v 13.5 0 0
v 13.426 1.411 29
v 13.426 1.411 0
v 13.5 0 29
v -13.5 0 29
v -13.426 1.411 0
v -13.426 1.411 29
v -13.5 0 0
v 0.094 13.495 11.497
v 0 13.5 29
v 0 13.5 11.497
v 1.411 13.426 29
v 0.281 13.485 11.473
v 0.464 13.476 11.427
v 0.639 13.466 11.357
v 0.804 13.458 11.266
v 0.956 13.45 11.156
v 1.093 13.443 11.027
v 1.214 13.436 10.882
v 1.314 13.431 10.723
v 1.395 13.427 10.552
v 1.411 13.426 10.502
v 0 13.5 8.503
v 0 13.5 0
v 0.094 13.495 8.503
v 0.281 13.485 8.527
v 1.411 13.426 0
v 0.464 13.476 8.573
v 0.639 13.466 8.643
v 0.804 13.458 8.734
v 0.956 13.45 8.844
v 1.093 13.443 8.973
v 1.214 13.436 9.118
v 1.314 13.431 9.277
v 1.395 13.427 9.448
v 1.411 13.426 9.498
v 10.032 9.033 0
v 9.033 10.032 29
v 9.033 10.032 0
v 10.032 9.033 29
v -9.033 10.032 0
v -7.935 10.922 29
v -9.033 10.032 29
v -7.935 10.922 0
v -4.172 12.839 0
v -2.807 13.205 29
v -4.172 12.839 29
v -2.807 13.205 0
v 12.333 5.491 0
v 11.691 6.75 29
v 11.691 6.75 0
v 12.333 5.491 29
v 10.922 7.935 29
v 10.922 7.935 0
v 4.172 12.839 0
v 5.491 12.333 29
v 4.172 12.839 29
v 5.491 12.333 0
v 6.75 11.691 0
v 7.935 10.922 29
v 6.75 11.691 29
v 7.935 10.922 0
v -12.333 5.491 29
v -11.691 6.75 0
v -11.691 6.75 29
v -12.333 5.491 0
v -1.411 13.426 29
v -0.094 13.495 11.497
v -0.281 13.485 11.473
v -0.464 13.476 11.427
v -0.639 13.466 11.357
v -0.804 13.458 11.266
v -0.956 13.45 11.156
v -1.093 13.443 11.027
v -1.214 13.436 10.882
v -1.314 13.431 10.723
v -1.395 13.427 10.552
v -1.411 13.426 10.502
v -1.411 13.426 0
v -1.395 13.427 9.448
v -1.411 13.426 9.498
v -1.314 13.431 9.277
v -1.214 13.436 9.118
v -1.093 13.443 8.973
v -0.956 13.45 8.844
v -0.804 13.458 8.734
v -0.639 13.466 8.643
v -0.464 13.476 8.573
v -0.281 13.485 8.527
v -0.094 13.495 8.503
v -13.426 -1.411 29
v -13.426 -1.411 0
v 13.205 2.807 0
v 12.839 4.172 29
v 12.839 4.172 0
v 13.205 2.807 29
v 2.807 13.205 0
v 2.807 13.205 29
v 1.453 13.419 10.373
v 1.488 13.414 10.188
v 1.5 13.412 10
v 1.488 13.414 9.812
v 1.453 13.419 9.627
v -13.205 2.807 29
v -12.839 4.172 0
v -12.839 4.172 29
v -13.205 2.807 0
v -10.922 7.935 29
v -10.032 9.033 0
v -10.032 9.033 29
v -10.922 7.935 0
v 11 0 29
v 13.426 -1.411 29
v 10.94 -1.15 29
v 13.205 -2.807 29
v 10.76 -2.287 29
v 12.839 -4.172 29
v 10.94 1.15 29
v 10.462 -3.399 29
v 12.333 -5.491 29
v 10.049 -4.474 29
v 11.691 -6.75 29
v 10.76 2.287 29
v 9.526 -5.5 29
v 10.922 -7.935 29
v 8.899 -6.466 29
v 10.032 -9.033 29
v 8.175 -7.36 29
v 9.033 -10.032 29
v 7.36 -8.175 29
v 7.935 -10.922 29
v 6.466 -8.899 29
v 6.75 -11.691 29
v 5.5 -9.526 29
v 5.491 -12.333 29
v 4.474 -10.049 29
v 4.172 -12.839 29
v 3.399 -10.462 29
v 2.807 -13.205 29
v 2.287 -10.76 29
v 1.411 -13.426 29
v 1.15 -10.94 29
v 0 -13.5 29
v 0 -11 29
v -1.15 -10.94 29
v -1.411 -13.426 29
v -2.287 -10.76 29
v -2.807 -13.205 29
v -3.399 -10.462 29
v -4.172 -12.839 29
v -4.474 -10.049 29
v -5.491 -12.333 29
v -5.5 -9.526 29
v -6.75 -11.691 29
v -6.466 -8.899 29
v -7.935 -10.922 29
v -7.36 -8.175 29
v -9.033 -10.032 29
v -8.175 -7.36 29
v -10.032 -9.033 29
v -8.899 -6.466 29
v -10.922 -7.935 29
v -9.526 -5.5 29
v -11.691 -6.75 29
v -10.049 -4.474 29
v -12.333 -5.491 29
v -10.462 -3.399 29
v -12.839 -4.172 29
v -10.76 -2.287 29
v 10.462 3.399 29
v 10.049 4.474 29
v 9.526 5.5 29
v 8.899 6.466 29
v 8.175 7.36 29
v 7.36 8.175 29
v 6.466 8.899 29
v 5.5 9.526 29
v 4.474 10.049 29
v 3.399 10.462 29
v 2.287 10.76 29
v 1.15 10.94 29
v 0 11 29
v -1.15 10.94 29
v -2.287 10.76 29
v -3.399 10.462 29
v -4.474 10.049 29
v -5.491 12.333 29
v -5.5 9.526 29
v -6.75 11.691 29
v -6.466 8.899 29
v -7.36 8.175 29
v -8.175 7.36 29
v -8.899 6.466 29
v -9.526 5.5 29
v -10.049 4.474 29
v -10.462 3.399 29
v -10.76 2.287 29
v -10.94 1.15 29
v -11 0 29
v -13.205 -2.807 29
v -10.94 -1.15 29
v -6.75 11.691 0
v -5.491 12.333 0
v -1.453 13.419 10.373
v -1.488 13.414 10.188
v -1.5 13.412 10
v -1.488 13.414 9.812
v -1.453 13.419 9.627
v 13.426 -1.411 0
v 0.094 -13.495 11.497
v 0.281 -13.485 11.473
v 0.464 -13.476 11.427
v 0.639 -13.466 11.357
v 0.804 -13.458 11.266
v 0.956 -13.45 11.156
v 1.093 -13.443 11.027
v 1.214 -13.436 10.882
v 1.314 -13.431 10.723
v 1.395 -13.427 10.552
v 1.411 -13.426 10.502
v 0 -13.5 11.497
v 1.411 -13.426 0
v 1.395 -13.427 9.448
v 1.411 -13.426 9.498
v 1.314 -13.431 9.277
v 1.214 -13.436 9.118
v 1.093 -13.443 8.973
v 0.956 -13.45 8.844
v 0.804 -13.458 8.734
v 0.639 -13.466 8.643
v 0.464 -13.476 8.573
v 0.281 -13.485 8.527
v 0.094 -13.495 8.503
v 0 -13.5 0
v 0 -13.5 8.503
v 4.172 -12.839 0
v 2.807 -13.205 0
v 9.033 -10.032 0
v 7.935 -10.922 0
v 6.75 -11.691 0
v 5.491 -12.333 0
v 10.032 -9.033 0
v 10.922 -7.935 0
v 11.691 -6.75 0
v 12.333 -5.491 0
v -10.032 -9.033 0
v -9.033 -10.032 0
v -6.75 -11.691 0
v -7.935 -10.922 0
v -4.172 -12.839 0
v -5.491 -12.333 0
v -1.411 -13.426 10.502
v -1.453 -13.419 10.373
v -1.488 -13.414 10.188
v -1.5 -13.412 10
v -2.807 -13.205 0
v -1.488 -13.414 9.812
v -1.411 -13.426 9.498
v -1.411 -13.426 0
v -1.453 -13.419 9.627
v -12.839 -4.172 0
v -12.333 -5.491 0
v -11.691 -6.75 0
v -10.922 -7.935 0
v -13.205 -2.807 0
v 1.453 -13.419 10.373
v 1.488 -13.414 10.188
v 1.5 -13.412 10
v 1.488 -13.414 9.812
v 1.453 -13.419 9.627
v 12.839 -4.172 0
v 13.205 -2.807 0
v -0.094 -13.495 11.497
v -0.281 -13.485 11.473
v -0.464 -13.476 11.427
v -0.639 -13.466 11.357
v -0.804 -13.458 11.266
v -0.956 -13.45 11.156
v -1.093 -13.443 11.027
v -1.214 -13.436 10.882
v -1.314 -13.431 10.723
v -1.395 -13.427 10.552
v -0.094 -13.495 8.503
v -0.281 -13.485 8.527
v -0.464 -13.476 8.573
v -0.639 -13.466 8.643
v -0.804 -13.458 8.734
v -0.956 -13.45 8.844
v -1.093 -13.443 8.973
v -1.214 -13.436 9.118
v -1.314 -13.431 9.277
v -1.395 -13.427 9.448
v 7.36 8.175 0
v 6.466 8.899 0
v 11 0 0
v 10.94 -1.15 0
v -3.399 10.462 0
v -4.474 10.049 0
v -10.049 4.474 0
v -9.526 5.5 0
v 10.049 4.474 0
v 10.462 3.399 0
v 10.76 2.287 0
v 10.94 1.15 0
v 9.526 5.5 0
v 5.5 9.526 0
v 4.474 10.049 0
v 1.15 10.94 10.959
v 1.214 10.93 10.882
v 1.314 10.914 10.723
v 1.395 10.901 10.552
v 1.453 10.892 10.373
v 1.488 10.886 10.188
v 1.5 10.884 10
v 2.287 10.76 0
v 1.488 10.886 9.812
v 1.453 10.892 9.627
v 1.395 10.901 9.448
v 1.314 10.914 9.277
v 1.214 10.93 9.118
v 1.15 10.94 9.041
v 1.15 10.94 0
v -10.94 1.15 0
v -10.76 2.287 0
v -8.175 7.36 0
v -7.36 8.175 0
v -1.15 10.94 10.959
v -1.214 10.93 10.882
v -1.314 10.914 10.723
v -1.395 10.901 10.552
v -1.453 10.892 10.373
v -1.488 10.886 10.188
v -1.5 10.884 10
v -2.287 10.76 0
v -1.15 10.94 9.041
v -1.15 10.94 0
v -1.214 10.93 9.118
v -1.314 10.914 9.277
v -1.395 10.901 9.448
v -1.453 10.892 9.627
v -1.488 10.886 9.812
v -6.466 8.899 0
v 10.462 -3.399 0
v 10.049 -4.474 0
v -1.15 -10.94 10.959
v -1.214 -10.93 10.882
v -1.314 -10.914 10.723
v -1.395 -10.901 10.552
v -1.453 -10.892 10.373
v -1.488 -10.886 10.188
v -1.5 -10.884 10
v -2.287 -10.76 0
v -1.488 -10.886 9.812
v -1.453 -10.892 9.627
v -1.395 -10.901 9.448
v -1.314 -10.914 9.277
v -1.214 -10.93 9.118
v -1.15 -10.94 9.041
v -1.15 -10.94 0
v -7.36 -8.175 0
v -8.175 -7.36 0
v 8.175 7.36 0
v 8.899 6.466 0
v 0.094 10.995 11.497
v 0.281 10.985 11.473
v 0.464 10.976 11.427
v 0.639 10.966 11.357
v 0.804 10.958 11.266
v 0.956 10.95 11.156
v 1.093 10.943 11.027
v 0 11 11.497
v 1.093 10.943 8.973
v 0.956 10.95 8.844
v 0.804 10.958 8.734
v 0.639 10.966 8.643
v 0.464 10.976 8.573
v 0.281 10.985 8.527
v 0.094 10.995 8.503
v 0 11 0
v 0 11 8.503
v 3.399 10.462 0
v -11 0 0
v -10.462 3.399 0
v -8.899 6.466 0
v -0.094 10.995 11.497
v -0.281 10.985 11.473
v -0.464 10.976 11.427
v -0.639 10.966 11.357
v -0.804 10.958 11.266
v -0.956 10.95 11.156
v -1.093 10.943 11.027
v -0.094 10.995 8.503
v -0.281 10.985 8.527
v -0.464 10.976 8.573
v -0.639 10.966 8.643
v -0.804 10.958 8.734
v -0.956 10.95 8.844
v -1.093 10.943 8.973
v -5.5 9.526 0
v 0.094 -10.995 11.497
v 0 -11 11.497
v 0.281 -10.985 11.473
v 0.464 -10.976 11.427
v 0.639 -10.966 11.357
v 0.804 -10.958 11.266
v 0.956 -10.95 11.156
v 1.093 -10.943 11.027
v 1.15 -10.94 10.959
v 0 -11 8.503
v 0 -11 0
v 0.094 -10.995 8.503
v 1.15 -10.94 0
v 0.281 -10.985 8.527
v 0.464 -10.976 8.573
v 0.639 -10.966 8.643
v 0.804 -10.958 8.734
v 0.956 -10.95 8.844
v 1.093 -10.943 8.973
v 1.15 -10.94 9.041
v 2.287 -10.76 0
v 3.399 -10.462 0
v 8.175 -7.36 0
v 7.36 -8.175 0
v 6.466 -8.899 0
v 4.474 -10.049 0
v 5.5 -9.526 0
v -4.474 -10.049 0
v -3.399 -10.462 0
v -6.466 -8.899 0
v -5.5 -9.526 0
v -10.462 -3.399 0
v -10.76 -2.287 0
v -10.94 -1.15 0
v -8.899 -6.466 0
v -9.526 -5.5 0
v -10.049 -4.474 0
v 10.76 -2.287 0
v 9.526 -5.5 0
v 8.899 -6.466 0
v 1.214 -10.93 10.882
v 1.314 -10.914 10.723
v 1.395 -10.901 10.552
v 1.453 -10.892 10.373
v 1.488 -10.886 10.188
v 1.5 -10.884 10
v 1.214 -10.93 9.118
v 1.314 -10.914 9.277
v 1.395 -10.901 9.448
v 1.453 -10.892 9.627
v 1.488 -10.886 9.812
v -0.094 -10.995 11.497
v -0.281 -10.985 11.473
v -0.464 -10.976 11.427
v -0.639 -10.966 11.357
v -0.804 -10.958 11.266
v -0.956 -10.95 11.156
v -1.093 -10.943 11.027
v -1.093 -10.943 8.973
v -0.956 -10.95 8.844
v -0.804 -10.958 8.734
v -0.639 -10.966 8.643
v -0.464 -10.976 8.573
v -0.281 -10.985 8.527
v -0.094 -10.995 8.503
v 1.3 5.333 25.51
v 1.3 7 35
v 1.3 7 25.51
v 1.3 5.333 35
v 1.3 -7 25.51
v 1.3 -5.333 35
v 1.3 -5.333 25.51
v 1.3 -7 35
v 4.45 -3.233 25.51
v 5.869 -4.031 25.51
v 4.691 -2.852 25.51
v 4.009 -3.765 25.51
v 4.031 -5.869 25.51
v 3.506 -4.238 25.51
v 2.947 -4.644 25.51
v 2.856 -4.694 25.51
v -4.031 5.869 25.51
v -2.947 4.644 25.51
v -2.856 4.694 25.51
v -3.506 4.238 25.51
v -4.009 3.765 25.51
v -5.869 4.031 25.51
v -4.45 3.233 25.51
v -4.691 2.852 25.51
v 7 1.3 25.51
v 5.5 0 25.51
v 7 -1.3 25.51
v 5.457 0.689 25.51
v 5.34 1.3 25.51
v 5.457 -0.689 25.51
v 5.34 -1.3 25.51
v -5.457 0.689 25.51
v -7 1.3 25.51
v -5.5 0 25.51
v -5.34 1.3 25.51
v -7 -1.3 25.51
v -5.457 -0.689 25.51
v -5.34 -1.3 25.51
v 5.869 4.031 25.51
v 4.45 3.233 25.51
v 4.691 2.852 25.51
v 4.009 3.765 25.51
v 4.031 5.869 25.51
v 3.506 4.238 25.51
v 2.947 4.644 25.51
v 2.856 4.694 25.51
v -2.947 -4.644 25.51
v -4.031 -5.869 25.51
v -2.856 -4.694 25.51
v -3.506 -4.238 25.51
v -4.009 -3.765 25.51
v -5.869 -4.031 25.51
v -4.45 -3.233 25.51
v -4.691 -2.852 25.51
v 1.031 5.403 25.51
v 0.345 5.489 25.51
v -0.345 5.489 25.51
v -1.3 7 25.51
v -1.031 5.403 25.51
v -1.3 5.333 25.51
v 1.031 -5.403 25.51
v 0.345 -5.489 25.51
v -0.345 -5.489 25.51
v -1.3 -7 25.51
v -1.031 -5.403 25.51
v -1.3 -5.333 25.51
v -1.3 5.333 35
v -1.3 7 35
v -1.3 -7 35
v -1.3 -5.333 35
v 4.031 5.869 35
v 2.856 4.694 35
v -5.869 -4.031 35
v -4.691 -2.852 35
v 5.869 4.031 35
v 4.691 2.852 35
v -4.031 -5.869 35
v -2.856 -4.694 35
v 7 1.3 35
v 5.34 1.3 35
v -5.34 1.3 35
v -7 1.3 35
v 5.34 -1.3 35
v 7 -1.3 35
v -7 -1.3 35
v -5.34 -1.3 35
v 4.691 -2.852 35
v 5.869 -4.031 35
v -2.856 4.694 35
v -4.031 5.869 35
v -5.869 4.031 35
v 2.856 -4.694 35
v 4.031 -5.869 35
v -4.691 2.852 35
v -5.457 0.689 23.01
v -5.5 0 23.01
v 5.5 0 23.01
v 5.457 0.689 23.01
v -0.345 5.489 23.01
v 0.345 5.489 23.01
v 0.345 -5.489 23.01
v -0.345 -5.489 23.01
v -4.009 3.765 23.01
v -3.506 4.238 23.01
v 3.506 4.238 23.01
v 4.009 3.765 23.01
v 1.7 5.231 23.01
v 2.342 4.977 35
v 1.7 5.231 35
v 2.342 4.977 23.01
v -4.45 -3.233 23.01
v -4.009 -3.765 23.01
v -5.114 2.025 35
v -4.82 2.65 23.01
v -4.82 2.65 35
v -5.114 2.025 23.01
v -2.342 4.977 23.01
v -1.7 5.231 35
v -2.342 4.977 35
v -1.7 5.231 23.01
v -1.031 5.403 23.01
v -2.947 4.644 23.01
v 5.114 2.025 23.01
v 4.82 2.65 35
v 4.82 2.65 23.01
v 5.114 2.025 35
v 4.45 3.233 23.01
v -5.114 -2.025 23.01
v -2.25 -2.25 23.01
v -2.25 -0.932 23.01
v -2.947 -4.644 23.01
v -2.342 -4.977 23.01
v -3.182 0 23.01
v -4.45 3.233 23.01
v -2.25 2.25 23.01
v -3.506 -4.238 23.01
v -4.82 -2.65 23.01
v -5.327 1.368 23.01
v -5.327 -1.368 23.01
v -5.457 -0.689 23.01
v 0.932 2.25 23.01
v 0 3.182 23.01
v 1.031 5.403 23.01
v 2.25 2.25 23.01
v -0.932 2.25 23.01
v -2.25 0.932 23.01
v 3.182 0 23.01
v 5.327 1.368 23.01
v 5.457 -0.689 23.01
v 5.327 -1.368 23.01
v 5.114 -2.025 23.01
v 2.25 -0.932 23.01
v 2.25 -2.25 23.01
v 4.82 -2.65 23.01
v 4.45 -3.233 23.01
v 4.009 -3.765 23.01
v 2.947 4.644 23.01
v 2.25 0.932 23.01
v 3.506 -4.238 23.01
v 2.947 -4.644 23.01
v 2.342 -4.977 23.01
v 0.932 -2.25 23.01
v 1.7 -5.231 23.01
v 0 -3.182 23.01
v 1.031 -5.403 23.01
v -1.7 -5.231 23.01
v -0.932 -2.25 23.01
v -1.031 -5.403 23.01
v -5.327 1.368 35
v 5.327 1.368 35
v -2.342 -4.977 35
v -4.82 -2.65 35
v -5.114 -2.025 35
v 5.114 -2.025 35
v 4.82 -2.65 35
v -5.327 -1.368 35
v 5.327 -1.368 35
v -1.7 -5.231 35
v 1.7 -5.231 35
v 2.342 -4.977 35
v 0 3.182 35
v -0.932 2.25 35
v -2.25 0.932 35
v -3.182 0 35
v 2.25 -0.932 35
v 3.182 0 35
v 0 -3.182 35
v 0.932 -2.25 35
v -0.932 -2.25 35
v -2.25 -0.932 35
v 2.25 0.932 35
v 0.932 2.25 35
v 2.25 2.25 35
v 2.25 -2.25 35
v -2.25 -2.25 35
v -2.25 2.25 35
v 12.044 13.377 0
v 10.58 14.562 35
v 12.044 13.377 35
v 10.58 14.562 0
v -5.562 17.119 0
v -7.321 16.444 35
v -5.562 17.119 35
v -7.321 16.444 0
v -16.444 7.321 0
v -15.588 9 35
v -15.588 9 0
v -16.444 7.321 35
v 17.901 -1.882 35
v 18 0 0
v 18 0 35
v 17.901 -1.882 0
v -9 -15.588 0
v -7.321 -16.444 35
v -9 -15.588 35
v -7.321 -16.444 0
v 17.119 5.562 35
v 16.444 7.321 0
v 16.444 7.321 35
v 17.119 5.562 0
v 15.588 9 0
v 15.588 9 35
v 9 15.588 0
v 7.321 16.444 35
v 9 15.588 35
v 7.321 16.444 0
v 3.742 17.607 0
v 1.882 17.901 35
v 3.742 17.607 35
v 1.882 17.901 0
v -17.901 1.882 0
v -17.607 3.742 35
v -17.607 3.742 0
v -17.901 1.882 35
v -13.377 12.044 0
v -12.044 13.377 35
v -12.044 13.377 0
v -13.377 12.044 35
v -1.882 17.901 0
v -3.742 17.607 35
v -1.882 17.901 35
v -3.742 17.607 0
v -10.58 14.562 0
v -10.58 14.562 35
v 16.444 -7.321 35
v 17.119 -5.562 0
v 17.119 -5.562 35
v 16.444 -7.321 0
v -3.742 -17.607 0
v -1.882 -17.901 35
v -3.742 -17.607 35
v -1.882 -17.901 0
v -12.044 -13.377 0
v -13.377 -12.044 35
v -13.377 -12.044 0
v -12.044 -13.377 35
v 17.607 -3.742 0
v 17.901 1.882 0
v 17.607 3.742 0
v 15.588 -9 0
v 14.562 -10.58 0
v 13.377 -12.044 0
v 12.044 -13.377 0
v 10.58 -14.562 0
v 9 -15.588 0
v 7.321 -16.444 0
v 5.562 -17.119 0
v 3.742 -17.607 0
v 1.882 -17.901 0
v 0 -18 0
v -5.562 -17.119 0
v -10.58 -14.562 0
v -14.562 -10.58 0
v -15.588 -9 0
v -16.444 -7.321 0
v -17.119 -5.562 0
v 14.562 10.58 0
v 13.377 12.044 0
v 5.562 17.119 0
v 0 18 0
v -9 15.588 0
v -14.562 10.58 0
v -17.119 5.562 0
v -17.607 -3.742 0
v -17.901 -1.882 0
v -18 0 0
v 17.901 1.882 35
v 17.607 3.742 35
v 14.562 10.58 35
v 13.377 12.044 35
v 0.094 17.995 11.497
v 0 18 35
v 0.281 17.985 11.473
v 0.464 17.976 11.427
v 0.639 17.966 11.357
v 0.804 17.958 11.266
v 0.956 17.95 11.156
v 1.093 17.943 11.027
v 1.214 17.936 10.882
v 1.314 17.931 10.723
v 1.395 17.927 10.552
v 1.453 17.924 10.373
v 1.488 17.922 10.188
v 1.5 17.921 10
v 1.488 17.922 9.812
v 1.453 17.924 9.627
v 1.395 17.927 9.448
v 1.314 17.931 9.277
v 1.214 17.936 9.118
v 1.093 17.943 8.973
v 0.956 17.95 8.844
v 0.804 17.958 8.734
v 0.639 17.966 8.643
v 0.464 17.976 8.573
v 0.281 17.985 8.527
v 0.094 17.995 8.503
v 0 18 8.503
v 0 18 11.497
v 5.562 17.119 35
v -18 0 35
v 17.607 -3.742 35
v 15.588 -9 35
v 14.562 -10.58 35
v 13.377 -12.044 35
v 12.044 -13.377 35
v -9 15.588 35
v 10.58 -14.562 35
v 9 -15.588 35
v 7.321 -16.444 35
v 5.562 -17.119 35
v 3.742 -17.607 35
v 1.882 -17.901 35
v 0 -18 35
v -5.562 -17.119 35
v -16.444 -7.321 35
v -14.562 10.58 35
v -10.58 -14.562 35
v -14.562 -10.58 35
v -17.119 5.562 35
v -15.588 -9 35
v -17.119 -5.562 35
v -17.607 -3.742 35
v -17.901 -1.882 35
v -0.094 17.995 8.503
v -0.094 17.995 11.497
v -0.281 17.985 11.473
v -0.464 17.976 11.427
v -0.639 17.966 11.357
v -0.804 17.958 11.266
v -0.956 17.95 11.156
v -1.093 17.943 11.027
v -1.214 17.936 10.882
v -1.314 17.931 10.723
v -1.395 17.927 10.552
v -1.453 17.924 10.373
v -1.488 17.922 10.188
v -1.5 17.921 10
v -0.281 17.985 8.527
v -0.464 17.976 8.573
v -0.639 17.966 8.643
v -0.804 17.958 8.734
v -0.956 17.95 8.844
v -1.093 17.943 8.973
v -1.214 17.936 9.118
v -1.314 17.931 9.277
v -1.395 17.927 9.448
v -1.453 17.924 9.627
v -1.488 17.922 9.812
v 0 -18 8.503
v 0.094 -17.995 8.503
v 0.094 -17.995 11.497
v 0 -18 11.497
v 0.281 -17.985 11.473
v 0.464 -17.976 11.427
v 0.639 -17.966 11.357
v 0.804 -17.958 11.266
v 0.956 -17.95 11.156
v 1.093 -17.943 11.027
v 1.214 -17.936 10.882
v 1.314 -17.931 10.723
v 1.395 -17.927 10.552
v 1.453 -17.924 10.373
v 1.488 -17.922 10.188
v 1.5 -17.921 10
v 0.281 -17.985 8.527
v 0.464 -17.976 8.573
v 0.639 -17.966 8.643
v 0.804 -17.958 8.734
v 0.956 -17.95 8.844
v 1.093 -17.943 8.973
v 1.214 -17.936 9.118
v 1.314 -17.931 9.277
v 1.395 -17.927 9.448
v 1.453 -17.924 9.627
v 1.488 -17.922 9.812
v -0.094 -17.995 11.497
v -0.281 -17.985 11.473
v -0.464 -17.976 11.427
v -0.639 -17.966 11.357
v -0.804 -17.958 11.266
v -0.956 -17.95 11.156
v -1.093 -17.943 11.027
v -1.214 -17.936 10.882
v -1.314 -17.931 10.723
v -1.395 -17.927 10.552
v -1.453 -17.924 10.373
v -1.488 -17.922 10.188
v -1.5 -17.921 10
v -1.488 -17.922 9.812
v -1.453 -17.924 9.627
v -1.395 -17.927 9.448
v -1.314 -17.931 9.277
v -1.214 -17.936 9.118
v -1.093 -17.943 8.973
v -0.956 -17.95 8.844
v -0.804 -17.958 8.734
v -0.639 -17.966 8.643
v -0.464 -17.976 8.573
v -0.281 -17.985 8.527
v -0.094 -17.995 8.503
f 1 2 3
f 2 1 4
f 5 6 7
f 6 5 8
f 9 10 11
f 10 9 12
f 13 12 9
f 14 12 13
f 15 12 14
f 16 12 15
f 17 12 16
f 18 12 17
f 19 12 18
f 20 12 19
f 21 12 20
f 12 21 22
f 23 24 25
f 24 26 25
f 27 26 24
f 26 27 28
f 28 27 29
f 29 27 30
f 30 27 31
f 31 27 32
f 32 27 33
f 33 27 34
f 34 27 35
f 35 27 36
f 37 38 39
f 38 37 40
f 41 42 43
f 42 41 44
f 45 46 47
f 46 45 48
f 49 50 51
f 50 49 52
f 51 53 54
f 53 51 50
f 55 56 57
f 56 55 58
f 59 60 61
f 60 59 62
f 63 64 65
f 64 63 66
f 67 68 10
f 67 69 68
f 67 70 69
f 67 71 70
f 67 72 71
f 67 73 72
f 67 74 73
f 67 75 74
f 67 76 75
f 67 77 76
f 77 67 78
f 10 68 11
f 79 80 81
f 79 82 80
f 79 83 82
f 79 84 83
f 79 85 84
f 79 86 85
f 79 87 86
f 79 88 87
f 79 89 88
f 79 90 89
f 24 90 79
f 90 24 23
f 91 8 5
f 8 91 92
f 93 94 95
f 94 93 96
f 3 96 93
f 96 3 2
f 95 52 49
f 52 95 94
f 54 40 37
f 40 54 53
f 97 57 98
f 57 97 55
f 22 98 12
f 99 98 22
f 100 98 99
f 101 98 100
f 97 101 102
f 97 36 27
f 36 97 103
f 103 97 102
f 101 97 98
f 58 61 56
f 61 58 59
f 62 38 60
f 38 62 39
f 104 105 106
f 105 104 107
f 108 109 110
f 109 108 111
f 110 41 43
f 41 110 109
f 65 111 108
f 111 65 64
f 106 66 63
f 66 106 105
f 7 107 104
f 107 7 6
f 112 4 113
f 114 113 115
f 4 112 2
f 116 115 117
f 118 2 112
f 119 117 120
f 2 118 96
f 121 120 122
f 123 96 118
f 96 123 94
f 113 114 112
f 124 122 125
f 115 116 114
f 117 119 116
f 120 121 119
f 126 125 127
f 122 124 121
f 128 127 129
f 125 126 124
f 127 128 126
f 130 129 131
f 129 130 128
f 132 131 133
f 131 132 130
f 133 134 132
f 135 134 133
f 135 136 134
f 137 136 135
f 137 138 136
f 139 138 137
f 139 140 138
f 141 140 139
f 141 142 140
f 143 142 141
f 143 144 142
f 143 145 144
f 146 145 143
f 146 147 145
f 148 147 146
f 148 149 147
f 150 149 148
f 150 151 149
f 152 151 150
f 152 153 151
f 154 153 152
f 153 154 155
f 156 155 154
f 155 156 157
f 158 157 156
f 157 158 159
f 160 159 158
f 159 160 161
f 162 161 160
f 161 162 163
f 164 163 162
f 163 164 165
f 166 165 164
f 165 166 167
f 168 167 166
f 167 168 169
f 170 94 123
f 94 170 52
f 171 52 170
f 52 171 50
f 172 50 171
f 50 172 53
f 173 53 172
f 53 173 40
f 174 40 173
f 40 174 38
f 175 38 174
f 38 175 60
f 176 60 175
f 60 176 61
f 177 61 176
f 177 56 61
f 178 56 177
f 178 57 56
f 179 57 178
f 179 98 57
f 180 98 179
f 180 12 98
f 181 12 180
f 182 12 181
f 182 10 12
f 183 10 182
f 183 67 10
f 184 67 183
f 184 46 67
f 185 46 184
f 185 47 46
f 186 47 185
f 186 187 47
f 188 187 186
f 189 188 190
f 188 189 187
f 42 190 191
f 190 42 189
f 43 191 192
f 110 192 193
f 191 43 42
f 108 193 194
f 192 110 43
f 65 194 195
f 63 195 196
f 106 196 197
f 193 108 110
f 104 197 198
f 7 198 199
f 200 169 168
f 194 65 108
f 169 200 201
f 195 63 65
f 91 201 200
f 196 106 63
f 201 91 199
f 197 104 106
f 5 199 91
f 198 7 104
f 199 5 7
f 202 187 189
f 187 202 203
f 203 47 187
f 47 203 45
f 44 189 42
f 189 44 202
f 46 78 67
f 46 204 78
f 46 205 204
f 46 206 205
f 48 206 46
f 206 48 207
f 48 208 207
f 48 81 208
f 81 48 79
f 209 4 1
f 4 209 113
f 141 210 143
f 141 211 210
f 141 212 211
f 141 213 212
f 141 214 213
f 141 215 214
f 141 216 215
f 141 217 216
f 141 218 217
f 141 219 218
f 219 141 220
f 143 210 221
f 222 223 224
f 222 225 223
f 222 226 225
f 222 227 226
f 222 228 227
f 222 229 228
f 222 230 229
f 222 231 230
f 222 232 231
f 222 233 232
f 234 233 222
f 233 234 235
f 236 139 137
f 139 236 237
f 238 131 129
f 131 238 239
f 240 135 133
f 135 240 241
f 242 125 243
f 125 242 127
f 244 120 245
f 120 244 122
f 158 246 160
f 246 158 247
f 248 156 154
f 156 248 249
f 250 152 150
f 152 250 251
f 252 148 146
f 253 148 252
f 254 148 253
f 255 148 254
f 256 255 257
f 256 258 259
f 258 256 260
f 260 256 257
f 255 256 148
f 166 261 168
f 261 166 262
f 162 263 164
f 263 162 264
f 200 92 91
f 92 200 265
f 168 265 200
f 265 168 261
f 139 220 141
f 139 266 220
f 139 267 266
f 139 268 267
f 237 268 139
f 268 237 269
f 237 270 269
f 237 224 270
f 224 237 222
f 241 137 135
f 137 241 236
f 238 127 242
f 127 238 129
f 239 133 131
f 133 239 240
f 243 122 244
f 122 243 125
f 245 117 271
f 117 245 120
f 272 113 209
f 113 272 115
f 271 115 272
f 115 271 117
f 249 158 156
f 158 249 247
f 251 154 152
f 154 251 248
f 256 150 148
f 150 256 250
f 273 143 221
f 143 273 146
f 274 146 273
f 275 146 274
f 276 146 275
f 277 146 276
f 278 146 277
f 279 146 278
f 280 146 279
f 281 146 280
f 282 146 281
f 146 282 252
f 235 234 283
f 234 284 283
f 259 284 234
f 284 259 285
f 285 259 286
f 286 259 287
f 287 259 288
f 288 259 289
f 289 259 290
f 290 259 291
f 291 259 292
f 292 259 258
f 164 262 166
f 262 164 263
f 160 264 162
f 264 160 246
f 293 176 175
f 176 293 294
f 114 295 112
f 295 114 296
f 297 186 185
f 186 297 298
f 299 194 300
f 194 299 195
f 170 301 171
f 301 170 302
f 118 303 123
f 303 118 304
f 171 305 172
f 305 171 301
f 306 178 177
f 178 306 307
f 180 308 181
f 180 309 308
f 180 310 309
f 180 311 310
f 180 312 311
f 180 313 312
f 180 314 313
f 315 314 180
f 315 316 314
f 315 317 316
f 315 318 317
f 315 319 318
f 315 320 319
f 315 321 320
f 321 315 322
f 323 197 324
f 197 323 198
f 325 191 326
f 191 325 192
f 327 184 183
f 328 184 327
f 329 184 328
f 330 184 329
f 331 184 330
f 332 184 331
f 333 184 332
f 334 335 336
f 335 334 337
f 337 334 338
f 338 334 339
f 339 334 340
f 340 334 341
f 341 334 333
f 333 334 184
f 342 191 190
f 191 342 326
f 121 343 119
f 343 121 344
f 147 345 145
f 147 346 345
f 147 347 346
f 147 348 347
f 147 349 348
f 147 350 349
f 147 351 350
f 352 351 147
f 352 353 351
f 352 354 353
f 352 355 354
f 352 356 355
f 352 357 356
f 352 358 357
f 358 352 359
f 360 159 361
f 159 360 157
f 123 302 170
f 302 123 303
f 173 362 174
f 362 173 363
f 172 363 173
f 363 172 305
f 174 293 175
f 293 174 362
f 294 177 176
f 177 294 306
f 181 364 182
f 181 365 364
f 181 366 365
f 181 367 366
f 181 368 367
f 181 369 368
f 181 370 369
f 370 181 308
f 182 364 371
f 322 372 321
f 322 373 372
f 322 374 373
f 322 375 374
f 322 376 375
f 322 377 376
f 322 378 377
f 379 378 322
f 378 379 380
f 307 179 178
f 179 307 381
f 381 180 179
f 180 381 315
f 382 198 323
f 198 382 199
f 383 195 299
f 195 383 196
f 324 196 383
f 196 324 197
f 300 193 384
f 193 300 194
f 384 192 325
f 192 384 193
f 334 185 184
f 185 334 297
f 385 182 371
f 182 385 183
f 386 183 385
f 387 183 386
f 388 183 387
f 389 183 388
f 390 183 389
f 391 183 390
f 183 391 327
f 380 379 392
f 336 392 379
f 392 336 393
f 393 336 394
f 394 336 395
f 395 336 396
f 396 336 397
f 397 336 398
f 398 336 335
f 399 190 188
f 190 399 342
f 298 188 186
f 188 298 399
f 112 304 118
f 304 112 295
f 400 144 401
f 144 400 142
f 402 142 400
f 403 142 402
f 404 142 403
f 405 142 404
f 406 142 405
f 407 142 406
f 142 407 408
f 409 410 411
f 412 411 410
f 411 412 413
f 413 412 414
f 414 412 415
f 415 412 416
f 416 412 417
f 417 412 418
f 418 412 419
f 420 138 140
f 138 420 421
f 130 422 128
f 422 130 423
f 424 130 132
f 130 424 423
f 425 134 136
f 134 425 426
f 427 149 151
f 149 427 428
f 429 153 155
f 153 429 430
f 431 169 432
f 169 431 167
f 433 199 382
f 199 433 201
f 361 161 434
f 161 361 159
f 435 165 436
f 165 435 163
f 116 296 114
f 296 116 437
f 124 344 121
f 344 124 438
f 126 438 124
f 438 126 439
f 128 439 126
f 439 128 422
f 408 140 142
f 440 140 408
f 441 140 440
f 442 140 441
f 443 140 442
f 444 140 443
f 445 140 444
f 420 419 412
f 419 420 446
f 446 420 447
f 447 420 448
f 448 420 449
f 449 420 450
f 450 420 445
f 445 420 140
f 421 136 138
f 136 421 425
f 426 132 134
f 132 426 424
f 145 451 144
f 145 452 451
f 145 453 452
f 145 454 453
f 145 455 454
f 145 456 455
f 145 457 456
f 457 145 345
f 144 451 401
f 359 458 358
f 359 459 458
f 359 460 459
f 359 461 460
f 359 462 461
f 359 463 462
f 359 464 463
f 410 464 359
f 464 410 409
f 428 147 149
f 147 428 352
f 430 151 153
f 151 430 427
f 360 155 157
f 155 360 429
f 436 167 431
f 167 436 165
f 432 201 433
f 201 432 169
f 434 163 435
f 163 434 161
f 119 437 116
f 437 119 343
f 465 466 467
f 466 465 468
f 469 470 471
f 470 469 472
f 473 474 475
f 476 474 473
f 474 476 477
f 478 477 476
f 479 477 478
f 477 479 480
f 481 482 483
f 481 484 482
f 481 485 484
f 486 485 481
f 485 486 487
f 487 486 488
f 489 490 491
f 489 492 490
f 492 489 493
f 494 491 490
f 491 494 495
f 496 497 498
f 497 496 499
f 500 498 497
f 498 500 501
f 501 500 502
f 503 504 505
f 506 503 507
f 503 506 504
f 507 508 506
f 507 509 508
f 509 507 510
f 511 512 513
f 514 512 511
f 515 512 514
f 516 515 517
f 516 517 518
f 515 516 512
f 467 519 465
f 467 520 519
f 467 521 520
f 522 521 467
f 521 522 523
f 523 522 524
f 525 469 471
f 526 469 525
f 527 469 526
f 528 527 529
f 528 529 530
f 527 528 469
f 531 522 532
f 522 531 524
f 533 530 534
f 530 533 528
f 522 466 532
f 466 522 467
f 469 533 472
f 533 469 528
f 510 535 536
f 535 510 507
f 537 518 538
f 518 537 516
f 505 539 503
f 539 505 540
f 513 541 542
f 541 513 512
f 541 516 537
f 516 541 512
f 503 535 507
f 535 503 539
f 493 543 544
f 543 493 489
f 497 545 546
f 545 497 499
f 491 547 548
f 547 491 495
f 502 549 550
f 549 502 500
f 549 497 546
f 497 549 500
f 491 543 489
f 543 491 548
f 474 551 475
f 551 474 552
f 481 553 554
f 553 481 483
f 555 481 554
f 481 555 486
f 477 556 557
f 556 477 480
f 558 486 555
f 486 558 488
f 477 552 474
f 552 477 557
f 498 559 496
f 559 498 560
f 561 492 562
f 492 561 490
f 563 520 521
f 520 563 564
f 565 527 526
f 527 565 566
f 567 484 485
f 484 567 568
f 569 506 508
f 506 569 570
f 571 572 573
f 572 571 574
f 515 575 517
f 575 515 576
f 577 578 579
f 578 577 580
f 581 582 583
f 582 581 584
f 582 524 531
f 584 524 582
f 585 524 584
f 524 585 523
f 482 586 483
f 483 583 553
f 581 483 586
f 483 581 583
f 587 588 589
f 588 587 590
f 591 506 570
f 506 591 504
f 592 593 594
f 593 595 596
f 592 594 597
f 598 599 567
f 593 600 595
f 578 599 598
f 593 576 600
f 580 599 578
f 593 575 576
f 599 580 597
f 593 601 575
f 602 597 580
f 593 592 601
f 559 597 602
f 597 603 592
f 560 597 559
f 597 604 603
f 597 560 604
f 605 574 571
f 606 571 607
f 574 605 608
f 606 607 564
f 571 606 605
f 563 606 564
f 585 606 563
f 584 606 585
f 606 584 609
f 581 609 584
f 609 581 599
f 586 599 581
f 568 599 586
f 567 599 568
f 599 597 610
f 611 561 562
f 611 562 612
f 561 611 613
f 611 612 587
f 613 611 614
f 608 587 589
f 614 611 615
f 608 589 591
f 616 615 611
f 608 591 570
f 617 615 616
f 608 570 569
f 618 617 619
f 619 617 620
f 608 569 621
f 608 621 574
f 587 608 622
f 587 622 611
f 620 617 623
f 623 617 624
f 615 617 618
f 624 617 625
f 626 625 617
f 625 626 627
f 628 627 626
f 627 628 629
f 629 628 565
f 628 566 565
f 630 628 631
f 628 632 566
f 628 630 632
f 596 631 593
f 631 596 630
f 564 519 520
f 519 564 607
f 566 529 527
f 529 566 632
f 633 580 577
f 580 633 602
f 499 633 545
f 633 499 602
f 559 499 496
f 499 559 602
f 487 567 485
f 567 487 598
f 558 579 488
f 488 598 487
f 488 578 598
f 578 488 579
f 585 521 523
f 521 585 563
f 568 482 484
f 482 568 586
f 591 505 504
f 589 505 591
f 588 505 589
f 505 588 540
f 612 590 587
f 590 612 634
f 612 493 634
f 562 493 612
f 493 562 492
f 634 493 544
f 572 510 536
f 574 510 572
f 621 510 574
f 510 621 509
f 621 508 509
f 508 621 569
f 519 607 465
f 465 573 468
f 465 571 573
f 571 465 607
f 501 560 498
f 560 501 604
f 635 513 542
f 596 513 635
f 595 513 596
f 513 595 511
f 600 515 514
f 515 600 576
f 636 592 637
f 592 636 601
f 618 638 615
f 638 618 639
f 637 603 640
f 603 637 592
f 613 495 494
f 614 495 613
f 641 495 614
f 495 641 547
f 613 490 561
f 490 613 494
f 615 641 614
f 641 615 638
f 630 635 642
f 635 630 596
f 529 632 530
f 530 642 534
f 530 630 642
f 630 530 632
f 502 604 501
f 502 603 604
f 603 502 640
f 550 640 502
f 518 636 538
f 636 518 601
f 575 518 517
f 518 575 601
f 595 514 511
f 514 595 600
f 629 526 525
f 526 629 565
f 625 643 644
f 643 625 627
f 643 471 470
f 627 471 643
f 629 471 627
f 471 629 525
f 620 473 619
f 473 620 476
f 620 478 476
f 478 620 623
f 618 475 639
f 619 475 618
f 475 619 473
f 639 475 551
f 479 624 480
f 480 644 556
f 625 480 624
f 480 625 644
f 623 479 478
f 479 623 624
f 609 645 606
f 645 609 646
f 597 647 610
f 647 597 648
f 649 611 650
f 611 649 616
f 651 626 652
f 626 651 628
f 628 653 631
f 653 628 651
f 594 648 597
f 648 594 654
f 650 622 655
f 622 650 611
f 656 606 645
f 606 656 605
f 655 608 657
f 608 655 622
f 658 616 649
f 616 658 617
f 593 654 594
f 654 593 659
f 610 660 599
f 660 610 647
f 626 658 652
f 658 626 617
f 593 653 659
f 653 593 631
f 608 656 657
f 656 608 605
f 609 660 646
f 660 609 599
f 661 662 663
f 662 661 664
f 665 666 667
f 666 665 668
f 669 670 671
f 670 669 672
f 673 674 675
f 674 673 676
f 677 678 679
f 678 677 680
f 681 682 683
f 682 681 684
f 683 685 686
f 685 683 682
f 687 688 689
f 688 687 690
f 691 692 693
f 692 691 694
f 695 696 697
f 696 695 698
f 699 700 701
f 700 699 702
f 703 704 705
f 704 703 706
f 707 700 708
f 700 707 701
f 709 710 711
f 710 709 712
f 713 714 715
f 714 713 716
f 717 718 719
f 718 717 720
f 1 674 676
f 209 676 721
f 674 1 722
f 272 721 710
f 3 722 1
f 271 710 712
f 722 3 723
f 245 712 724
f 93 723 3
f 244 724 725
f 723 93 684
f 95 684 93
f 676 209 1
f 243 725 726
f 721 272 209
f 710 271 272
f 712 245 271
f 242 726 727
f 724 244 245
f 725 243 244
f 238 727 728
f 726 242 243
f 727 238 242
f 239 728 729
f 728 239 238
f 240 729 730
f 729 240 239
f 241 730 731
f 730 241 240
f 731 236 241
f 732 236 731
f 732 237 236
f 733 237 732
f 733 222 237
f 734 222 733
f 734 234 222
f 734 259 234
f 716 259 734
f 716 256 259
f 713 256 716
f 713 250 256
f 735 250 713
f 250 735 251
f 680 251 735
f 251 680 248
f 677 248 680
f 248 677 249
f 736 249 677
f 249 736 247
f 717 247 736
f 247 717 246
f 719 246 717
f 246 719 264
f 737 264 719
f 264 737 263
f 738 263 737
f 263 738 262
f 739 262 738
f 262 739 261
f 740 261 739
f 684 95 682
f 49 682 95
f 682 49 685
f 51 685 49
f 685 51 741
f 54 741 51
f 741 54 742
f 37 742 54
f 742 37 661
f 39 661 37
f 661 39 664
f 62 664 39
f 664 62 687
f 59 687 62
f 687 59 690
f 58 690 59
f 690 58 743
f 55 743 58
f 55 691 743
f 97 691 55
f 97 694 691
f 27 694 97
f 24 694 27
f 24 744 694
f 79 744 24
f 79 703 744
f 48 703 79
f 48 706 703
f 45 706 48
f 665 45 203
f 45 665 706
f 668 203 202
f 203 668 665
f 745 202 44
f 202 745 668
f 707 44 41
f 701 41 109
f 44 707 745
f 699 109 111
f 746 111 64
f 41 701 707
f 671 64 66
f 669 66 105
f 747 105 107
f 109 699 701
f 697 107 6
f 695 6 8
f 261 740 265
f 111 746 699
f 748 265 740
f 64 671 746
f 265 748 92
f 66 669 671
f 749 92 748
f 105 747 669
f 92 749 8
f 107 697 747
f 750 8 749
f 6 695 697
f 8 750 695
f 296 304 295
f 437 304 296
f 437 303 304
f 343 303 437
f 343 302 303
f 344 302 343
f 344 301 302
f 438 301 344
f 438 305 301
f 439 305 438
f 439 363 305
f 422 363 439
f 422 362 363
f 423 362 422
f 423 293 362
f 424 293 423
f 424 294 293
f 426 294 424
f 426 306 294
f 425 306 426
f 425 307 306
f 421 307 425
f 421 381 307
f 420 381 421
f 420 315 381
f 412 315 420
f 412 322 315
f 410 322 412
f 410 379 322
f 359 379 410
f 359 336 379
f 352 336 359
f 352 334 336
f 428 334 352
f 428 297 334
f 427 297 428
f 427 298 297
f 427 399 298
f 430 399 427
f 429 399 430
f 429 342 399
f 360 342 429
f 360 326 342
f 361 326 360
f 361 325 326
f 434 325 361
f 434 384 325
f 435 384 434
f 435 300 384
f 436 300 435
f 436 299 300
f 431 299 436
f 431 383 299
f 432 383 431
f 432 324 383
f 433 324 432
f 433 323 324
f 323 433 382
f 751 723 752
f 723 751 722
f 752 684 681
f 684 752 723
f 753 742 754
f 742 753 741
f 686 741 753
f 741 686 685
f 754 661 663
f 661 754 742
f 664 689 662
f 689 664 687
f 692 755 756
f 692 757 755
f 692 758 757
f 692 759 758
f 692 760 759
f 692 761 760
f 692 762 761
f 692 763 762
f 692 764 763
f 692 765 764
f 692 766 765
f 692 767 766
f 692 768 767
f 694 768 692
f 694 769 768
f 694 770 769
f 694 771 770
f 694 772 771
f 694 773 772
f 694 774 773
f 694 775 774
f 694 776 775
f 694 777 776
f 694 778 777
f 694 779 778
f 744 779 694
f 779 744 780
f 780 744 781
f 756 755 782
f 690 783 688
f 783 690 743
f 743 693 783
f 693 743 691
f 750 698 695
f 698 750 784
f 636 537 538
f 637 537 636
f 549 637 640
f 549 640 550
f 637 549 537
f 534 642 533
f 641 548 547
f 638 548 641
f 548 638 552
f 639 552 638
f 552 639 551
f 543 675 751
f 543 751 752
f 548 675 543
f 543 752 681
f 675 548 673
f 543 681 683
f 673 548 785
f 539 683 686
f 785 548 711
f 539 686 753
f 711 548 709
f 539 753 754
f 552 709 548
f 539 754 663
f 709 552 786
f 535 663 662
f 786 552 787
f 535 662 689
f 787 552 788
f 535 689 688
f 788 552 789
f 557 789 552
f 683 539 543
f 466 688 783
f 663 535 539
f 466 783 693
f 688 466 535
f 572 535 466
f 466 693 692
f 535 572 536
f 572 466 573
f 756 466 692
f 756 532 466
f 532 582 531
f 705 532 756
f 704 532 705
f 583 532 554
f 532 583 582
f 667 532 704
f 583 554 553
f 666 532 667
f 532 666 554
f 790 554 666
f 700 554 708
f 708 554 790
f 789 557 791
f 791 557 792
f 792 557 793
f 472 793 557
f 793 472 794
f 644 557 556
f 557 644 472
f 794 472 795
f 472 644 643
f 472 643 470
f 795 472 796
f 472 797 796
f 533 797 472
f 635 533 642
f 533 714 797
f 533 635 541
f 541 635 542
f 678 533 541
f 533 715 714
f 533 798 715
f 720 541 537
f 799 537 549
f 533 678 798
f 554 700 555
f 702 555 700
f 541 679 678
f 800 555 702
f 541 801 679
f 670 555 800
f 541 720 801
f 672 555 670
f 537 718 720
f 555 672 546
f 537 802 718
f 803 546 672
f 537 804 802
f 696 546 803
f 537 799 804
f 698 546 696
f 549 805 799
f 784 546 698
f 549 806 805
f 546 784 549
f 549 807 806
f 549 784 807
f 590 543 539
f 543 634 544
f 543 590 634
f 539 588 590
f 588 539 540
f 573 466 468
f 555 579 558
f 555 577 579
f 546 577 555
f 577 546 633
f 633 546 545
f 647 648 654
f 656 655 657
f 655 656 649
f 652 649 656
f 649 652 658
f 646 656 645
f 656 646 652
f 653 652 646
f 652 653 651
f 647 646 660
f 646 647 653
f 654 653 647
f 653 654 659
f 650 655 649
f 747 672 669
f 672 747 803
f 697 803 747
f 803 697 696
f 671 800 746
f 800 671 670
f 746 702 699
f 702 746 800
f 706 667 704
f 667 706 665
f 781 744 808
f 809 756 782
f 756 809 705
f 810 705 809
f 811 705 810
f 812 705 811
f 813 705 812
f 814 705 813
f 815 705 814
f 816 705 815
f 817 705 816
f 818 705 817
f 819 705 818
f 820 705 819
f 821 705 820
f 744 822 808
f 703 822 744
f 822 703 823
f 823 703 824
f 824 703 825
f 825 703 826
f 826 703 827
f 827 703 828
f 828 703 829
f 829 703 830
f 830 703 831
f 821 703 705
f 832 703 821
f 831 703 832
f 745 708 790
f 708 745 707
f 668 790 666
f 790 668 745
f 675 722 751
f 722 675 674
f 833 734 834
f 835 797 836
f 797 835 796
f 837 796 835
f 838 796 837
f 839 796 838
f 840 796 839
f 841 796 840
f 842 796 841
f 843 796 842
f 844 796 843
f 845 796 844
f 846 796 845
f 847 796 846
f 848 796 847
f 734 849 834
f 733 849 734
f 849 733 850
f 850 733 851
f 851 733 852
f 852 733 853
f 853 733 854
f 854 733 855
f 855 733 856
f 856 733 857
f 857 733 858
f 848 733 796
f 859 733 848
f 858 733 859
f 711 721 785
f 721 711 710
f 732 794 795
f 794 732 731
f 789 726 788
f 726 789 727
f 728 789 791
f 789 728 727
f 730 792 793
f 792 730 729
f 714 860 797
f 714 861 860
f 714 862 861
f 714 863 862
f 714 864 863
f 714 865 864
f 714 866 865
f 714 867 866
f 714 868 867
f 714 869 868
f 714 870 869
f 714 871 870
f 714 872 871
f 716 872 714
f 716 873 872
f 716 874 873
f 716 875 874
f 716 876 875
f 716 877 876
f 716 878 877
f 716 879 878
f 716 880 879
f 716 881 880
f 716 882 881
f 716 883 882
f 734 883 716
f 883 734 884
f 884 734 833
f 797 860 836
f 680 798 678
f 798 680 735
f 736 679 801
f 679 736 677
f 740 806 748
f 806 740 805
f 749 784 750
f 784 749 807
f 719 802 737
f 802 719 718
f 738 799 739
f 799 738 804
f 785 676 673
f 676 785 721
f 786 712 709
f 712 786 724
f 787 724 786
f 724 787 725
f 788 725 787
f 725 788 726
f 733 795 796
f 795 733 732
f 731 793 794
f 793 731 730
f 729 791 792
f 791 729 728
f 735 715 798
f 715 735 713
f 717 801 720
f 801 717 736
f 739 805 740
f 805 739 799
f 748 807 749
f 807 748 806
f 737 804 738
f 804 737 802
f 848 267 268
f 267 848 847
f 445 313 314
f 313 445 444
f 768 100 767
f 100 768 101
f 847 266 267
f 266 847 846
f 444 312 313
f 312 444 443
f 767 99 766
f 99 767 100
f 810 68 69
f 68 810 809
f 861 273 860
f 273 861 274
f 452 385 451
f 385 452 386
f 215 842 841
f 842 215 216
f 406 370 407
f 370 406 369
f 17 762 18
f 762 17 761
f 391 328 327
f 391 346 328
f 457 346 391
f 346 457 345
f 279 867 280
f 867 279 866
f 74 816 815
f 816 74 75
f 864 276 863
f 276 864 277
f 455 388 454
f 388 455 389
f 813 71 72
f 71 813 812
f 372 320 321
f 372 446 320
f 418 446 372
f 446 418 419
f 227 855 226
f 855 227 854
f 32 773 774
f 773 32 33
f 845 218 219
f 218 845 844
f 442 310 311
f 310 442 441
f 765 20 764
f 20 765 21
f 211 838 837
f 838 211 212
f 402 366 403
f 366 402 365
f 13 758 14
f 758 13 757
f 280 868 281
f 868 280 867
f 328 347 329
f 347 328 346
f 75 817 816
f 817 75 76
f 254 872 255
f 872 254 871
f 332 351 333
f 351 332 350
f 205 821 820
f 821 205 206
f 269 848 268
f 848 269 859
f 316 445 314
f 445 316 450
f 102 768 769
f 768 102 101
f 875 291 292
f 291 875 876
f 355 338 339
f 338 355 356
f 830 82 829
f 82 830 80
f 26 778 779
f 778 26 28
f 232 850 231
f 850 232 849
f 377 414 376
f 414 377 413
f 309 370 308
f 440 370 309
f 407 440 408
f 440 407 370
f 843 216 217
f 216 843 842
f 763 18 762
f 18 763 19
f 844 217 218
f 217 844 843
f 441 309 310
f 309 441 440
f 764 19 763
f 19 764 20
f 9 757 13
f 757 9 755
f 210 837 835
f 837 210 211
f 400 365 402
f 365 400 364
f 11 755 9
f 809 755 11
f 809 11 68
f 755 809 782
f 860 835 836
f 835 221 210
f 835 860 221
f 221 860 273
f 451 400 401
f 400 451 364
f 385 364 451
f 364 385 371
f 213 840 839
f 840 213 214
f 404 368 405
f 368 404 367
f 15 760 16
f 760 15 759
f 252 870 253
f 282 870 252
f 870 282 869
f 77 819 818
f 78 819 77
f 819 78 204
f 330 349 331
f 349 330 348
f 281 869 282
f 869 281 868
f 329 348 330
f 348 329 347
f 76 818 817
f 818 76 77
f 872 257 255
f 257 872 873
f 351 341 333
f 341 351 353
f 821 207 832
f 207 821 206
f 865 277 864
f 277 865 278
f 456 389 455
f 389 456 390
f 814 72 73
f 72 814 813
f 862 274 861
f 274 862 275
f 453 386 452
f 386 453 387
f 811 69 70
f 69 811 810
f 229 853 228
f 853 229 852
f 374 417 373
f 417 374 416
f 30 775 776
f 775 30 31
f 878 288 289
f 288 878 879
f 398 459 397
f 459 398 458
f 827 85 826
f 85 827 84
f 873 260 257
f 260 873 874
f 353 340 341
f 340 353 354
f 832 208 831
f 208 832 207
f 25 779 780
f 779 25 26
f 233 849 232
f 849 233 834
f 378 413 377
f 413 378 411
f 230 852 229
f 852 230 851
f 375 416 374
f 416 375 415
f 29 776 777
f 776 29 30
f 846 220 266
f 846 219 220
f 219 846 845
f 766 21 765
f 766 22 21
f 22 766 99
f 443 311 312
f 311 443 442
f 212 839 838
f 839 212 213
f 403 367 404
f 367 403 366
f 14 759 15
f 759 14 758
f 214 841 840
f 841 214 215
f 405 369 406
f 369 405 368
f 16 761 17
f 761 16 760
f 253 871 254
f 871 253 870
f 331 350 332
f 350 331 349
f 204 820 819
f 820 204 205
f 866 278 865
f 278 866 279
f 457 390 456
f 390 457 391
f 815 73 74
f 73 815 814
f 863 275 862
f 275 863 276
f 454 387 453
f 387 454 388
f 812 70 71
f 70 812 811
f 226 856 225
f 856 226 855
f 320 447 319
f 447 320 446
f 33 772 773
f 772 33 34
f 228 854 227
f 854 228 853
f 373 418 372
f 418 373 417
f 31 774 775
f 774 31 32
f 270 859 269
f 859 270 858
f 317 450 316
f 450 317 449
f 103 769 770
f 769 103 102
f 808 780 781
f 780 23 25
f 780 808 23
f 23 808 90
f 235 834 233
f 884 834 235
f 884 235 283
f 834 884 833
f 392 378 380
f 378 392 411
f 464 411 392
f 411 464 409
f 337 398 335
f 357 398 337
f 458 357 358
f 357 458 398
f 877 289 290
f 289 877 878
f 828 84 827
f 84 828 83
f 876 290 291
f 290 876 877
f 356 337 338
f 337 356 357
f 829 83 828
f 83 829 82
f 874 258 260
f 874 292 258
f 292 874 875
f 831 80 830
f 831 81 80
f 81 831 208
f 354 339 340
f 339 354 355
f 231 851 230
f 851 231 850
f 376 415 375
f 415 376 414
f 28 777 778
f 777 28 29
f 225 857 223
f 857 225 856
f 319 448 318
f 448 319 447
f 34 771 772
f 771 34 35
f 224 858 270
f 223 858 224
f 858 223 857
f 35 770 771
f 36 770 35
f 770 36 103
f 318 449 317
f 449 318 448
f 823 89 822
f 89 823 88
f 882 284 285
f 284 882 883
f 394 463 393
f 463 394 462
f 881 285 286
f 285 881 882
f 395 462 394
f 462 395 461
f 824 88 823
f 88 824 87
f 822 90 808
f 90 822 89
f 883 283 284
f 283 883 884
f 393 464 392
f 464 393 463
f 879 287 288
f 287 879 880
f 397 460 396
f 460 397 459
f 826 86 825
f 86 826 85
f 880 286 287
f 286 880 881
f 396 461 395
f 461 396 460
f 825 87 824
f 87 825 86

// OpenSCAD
module latch_shaft(){
   difference(){
      union(){
         cylinder(r=5.5, h=12, $fn=50);
         for(rot = [0:45:360-45]){
            rotate([0,0,rot]){
               translate([0,0,4.5]){
                  cube([2.6, 14, 10], center=true);
               }
            }
         }
      }

      rotate([0,0,45]){
         translate([0,0,3]){
            cube([4.5, 4.5, 21], center=true);
         }
      }
         
      translate([0,0,3]){
         cube([4.5, 4.5, 21], center=true);
      }
   }
}

module pipe_slot(){
   difference(){
      cylinder(r=13.5, h=30, $fn=60);
      translate([0,0,-1]){
         cylinder(r=11, h=32, $fn=60);
      }
   }
}

difference(){
   cylinder(r=18, h=35, $fn=60);
   //Slot for the pipe
   translate([0,0,-1]){
      pipe_slot();
   }
   //shaft adapter for annoying motors
   rotate([0,180,0]){
      translate([0,0,-35.01]){
         latch_shaft();
      }
   }

   //screw holes
   translate([0,20,10]){
      rotate([90,0,0]){
         cylinder(r=1.5, h=40, $fn=50);
      }
   }
}
